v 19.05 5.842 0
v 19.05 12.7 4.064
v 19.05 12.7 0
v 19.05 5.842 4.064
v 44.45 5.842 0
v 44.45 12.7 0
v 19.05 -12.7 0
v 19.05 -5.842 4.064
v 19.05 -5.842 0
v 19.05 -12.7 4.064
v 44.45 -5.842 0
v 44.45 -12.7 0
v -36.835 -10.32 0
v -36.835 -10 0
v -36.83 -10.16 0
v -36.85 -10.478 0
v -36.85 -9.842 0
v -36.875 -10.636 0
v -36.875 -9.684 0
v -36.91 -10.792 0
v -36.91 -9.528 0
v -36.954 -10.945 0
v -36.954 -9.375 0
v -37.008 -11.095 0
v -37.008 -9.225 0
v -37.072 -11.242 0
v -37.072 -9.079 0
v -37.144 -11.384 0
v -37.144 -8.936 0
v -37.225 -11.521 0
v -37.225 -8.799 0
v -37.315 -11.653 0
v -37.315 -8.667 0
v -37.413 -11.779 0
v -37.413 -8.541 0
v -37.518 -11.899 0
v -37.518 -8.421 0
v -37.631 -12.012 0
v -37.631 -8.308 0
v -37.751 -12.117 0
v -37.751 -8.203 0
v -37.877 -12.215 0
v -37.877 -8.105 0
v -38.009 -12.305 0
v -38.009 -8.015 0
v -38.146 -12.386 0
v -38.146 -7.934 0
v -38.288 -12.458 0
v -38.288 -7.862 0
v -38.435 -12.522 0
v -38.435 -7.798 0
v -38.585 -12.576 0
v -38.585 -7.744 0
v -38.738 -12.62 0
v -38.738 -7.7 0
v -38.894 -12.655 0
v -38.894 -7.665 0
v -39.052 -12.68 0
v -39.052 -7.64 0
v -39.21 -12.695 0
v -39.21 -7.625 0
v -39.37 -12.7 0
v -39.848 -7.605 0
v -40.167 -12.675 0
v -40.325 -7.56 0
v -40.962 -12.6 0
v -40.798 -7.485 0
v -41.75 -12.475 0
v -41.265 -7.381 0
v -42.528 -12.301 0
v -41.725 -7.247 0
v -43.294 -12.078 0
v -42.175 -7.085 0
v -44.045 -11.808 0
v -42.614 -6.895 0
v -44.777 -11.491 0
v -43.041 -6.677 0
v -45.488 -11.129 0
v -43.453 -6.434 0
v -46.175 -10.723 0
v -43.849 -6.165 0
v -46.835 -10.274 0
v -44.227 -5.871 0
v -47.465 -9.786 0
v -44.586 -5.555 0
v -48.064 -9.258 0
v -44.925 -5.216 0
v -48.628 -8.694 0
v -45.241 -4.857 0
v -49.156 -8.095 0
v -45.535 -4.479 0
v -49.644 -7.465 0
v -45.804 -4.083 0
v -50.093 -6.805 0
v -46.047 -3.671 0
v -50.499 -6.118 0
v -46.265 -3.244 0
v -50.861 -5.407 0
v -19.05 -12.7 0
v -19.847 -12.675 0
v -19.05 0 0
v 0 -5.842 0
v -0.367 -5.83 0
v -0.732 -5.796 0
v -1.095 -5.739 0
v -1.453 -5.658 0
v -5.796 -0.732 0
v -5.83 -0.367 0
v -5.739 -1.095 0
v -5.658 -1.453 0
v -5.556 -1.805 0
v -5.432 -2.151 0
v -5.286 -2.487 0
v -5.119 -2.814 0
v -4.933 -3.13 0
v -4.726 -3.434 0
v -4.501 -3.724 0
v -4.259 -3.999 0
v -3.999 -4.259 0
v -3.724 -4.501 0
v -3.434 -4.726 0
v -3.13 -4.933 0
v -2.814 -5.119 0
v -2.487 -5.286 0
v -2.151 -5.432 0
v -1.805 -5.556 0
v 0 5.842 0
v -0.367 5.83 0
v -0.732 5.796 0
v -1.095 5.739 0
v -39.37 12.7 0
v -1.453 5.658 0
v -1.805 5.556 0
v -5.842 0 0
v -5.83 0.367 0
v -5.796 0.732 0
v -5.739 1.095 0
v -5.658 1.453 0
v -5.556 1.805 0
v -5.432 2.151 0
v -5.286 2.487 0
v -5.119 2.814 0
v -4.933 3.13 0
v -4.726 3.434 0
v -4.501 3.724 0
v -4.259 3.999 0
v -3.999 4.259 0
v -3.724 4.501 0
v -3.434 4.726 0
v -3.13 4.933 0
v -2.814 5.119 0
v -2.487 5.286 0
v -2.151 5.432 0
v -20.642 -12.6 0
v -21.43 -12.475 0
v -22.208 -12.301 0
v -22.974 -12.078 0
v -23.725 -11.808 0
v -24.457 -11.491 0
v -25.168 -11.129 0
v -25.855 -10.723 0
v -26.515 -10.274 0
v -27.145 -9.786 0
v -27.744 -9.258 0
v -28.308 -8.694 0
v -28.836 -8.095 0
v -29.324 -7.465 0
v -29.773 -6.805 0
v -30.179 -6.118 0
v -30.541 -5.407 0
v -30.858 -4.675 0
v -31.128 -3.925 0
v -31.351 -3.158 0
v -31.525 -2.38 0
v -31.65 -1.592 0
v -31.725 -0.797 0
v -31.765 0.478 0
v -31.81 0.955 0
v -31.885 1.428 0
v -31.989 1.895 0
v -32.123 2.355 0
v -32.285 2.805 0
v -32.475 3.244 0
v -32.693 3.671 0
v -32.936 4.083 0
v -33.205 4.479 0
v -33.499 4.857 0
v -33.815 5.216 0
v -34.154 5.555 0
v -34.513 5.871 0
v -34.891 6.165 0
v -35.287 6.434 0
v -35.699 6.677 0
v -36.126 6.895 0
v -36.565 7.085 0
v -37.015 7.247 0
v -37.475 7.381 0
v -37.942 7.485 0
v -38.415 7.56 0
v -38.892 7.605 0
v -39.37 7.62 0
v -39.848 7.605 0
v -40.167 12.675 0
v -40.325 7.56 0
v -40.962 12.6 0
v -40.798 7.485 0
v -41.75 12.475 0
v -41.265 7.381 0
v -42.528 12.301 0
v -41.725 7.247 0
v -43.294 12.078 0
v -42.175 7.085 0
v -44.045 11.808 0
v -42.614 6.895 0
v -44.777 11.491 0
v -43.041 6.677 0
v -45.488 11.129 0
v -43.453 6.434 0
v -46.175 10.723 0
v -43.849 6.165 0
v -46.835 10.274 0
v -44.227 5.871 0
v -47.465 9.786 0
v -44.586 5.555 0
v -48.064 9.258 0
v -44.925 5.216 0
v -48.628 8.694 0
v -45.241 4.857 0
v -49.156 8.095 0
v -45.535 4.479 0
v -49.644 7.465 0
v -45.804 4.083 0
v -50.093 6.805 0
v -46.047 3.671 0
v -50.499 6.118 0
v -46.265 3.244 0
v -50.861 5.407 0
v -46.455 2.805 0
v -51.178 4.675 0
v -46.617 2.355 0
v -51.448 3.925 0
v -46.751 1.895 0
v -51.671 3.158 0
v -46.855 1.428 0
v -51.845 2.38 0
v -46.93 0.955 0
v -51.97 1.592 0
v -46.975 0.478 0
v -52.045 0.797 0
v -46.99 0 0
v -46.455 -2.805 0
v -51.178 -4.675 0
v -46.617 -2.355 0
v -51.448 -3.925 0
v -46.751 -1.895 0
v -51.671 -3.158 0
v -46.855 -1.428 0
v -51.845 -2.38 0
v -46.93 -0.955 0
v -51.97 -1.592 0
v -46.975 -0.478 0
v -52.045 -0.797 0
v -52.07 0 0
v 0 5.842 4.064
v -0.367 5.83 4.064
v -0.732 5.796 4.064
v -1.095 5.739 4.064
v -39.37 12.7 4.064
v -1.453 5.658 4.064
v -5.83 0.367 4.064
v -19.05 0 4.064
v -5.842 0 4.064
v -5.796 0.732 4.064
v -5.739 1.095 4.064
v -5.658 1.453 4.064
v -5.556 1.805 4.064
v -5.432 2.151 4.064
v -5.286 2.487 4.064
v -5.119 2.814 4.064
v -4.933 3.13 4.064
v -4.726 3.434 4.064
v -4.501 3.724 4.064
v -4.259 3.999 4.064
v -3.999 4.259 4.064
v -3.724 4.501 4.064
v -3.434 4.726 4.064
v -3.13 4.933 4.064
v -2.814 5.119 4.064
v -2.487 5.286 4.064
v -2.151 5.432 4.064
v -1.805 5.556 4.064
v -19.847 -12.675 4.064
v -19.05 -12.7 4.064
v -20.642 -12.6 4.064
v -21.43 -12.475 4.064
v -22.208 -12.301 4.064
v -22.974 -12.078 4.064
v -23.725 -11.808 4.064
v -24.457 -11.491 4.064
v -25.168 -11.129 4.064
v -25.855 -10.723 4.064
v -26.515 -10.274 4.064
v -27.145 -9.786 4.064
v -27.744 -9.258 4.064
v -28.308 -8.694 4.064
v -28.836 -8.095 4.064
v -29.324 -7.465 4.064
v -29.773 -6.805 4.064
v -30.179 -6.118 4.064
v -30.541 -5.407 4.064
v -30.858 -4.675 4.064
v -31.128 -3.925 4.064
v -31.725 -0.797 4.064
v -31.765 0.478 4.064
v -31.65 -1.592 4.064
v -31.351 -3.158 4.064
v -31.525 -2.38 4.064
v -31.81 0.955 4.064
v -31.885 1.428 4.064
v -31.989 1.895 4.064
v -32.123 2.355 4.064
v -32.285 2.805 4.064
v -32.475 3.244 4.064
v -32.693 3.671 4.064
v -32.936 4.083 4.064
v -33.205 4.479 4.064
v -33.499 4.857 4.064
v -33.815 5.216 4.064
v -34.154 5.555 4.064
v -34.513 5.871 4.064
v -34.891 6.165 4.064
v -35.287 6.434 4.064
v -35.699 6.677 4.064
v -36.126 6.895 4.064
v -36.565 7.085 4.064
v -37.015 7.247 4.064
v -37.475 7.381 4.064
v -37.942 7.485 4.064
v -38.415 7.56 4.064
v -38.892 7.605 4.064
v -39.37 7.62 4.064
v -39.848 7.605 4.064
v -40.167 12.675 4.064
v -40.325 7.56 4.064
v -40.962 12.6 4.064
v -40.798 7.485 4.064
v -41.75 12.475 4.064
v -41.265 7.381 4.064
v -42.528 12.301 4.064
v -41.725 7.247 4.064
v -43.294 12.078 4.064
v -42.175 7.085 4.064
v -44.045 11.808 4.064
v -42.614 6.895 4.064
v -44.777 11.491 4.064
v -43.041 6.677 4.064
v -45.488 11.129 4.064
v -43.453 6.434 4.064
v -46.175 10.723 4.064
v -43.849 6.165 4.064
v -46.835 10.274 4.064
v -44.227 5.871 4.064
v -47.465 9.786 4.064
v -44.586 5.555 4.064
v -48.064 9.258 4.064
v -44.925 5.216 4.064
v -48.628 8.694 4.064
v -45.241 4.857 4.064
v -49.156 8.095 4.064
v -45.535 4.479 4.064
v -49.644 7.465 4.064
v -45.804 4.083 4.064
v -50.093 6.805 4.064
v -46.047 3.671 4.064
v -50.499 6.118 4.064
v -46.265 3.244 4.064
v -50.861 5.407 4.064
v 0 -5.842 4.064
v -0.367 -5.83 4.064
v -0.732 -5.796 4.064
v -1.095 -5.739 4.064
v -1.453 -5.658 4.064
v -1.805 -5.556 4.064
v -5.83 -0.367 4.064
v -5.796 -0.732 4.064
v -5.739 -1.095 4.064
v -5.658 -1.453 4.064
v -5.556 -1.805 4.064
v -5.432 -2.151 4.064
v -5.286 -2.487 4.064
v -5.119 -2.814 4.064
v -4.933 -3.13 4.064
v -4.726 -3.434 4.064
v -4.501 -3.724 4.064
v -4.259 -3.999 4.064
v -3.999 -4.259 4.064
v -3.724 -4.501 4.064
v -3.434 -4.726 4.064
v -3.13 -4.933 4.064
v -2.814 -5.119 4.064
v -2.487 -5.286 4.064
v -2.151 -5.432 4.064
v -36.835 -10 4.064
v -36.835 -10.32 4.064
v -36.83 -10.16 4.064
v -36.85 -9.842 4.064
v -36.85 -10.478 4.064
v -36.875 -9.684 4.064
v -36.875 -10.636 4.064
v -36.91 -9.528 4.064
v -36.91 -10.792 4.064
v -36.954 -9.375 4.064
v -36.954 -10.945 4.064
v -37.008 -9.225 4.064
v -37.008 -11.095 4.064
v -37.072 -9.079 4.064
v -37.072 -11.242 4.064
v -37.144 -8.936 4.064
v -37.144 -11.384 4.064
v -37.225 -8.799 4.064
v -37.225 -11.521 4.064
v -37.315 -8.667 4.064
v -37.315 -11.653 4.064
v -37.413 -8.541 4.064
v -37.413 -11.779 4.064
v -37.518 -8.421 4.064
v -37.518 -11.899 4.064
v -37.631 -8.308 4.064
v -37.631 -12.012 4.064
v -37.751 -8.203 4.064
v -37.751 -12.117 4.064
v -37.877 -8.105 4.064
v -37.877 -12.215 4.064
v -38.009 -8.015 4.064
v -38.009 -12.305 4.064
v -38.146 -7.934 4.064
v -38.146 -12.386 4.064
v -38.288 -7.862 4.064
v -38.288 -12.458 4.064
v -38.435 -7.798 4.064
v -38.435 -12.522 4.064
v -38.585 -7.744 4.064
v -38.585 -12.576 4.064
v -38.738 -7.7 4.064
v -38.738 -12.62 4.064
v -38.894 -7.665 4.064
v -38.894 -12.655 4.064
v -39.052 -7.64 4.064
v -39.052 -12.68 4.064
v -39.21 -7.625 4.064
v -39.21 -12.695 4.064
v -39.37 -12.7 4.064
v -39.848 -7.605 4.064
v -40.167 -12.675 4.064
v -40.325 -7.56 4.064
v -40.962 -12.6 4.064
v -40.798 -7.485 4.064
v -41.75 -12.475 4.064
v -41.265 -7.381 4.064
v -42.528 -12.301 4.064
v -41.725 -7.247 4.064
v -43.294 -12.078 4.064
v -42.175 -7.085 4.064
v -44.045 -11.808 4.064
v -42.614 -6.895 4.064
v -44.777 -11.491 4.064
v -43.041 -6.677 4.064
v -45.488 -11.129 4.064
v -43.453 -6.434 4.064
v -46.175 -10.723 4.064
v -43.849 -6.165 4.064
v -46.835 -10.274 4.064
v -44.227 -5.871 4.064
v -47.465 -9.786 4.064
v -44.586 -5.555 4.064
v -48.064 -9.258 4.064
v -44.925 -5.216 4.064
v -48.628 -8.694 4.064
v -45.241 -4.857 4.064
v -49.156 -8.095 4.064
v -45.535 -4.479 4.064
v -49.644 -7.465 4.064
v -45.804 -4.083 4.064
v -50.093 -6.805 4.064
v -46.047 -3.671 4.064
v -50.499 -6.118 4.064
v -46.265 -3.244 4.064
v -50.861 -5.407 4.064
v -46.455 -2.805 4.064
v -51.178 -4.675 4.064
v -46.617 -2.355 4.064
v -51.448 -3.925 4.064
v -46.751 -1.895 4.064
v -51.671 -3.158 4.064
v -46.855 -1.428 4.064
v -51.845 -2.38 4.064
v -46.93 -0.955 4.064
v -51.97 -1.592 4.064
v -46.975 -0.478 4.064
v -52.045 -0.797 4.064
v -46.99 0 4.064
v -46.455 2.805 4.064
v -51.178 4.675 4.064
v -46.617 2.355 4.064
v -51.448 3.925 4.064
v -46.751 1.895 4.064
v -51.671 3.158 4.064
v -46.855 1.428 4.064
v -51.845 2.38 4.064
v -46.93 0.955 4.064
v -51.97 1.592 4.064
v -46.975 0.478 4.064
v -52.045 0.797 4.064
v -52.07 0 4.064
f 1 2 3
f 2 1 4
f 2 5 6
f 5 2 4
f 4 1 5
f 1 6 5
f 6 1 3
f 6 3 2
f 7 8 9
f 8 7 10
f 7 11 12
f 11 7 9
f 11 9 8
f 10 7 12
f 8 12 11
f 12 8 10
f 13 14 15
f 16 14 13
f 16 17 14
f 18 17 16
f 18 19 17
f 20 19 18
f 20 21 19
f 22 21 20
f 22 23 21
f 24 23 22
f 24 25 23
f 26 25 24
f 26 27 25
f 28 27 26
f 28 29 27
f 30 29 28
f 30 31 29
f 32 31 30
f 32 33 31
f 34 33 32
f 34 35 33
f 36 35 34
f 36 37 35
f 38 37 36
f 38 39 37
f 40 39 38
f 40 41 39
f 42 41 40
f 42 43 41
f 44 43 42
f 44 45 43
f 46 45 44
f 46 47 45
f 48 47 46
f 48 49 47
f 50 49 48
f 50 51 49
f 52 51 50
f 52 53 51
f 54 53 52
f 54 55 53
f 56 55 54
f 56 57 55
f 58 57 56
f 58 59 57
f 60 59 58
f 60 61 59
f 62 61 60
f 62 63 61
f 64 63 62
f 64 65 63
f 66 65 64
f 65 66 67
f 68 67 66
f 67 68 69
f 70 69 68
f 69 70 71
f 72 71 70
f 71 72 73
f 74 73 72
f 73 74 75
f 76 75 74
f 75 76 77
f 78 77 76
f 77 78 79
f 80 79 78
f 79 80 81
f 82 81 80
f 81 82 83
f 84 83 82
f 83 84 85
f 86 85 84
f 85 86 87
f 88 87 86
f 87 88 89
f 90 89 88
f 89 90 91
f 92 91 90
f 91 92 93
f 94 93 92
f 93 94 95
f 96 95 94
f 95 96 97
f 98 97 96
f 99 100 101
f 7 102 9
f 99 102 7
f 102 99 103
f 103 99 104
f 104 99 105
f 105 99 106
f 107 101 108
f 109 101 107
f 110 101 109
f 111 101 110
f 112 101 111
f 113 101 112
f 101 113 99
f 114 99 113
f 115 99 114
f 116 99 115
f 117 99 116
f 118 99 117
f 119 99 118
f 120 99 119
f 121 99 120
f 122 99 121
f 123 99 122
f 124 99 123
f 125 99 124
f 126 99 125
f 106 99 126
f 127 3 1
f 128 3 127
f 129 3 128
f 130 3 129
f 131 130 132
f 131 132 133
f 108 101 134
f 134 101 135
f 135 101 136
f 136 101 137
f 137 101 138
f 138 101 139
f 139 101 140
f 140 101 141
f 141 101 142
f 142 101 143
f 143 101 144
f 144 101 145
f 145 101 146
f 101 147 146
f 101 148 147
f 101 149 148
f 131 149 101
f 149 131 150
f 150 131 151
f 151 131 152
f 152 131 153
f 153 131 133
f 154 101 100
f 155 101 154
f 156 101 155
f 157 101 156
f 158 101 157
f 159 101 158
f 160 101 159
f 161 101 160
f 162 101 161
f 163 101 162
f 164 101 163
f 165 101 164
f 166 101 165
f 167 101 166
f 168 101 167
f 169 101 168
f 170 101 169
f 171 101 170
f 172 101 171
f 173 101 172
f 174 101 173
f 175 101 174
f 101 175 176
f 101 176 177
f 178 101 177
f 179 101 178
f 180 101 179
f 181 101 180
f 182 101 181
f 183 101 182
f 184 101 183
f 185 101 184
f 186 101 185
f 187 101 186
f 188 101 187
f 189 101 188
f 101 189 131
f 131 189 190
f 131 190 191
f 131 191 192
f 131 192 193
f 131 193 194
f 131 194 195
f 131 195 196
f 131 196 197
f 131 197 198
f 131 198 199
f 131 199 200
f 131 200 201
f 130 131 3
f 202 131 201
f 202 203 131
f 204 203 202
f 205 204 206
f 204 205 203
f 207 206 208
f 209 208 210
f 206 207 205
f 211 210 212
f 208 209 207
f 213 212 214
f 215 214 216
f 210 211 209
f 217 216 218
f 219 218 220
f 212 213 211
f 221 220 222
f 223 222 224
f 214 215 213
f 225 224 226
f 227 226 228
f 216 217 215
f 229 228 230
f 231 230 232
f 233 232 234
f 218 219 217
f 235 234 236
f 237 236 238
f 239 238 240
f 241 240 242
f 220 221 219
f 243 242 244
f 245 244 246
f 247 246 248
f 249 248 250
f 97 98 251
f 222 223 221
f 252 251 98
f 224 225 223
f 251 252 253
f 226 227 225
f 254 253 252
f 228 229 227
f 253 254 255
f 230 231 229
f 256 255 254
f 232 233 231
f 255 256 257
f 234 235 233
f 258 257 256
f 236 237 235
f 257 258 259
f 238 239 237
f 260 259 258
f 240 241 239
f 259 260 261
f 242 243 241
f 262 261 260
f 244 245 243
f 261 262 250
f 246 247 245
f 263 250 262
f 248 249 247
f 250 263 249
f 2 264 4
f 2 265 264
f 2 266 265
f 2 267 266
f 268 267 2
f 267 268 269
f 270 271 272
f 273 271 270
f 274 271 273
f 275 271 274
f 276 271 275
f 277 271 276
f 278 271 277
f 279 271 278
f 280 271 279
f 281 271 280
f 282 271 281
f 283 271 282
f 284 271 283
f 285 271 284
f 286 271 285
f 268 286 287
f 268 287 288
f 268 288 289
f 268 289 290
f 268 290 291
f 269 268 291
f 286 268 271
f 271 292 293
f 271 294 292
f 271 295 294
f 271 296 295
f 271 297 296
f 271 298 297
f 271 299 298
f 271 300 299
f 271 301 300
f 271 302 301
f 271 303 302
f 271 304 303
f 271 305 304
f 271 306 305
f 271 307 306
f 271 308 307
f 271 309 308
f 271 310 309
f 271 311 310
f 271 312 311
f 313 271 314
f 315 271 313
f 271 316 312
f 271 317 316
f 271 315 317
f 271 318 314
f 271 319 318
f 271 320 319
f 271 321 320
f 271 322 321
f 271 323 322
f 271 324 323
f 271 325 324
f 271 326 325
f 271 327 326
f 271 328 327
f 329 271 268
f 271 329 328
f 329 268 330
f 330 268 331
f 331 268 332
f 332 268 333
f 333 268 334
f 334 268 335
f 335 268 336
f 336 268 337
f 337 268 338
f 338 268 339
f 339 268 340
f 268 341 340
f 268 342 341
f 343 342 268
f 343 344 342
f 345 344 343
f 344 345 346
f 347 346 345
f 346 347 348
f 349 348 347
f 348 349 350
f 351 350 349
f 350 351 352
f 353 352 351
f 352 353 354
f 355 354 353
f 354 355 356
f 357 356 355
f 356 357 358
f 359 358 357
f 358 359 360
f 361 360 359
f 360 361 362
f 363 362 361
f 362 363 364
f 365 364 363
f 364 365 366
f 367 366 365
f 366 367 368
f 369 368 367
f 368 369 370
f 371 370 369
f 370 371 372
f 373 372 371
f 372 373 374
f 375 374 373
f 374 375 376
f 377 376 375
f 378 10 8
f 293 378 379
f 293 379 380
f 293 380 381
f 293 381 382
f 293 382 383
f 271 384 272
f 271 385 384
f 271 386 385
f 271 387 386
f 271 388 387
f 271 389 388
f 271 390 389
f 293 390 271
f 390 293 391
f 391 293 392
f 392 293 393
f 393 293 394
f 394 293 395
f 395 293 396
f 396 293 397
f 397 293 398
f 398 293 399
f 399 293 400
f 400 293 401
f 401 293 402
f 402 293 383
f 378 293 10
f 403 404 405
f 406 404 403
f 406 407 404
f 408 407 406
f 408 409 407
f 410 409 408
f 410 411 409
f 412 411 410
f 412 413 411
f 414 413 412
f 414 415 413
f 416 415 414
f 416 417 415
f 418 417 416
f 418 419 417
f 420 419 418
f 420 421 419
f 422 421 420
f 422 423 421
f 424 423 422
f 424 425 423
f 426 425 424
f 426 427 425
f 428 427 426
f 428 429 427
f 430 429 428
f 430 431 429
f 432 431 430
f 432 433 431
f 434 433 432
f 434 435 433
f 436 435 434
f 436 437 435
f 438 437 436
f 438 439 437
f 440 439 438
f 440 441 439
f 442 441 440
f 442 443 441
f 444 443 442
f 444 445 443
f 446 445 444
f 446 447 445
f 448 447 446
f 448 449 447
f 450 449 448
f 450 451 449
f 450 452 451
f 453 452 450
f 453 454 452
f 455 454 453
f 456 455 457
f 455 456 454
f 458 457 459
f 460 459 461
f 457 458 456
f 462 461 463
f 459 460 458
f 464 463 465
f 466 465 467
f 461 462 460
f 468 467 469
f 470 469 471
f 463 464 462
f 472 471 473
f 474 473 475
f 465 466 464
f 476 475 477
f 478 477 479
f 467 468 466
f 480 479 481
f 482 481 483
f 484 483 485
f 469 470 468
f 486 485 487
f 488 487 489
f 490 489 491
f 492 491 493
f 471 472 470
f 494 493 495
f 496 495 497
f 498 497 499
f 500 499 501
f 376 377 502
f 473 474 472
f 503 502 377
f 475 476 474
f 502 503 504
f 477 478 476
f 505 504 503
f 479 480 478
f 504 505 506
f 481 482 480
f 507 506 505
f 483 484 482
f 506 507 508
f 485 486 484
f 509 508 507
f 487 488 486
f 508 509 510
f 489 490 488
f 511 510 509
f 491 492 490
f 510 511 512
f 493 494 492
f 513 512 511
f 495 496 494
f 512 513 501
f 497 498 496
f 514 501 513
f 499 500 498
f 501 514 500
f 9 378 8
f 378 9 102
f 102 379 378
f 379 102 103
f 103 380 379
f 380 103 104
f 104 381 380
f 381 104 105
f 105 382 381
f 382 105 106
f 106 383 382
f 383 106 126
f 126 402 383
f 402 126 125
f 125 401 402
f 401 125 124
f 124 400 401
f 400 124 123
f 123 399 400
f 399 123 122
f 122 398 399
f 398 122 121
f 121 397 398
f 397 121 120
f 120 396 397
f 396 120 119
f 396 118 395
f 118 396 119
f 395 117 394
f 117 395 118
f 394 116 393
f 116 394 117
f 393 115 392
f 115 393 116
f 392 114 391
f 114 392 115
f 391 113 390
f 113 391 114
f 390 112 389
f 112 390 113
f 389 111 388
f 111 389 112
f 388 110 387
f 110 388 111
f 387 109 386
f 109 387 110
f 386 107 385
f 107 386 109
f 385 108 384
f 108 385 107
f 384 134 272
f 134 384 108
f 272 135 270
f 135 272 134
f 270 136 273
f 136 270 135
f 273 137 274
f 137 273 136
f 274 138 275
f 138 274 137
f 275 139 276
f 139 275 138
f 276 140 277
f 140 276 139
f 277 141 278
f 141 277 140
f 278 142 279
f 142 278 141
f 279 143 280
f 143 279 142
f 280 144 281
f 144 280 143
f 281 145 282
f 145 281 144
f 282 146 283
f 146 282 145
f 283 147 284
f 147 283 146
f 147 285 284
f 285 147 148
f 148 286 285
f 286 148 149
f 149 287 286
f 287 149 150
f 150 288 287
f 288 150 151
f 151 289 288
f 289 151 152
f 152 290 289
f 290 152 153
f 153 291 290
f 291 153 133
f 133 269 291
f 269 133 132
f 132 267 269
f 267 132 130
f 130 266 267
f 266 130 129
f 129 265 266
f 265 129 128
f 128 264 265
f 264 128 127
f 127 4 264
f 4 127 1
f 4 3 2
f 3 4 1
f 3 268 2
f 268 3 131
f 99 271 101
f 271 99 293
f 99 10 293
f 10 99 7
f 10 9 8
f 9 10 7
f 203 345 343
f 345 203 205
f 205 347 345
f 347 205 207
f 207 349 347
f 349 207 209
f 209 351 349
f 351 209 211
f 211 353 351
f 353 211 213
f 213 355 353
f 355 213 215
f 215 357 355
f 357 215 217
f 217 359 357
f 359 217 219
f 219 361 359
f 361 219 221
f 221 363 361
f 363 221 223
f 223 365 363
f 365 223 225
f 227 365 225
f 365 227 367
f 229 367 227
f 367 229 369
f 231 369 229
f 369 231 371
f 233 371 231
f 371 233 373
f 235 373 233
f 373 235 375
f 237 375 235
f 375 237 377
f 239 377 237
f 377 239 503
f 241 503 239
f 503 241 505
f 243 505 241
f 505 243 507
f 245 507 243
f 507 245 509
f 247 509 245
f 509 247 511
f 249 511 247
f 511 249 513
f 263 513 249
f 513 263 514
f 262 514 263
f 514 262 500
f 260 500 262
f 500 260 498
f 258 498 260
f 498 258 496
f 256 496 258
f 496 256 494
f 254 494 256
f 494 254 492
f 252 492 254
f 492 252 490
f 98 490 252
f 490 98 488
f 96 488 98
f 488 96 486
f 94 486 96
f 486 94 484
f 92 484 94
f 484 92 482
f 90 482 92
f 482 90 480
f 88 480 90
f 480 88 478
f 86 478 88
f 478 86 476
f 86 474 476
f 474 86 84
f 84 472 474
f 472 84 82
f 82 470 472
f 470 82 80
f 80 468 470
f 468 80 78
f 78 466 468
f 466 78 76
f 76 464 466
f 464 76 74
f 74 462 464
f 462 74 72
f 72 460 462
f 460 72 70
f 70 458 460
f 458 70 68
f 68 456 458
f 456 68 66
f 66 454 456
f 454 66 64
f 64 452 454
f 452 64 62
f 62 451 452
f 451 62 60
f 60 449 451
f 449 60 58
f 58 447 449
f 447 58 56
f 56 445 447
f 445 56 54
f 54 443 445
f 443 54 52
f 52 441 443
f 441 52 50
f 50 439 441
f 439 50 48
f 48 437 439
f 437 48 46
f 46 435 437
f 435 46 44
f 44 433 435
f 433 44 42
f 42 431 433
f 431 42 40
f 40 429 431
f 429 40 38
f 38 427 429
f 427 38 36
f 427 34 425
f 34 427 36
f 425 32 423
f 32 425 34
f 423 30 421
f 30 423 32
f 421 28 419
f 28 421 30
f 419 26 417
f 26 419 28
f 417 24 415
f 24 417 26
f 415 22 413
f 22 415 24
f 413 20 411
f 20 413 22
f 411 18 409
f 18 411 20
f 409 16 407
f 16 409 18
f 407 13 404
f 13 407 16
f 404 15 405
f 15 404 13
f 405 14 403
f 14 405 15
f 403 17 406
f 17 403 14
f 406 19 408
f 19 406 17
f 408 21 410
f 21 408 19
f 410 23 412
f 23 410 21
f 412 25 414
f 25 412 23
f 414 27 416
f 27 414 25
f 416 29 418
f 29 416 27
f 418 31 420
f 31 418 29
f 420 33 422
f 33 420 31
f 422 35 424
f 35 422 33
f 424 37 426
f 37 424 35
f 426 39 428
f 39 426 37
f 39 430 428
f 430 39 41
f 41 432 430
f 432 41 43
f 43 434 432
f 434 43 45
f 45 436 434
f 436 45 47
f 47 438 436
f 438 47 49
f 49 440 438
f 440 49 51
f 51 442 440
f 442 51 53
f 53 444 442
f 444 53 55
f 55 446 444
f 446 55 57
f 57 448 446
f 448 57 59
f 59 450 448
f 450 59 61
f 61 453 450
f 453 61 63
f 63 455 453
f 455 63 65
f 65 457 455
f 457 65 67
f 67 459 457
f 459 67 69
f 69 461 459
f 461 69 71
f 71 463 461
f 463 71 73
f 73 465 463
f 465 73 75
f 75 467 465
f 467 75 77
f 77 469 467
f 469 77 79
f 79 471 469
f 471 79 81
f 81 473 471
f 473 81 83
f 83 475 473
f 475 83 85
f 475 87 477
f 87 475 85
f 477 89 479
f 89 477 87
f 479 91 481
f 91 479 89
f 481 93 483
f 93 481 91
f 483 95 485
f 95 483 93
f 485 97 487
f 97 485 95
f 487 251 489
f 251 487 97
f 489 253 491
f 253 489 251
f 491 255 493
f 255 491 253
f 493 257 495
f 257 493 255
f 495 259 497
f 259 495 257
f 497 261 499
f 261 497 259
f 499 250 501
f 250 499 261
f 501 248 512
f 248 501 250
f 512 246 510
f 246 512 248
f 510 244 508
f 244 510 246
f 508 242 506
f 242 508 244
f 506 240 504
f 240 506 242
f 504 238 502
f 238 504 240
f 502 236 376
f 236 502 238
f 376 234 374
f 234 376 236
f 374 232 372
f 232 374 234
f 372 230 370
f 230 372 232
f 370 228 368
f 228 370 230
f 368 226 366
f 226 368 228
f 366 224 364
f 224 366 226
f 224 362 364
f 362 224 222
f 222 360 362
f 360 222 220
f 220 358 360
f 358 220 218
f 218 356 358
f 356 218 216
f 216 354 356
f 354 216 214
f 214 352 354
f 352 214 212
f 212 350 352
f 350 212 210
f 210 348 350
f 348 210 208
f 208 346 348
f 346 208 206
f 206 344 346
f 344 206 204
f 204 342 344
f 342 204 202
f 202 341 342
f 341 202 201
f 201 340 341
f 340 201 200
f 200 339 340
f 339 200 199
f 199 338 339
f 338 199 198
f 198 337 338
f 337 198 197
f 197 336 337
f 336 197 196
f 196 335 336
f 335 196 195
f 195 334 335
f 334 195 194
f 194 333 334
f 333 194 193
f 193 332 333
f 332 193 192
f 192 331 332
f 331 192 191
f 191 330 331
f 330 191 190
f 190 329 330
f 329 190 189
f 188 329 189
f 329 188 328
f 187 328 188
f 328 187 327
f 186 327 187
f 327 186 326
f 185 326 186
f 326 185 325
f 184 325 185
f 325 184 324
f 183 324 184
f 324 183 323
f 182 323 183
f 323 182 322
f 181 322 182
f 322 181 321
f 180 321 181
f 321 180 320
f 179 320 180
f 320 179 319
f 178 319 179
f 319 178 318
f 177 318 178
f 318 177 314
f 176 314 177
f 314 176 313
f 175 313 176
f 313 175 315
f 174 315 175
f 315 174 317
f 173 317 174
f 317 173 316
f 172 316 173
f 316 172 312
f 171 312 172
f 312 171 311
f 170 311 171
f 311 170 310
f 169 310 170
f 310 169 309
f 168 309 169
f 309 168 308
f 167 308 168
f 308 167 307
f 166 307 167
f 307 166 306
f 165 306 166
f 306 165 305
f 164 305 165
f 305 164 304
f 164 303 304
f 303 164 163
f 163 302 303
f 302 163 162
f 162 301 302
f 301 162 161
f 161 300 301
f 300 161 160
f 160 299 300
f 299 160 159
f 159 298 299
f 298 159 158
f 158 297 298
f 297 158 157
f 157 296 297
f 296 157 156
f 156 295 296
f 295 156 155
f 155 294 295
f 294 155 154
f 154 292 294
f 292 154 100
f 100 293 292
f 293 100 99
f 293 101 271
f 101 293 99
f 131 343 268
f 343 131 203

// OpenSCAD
/*
 Tool to open Beths mecine bottle
*/
include <MCAD/units.scad>
use <MCAD/libtriangles.scad>

neck_diameter = 0.46*inch;
height = (0.11 + .05)*inch;
base = 1*inch;

module lever(neck, w, h){
    box_length = 1.5*inch;
    union(){
        translate([box_length/2,0,0]){
            _wedge(neck, w, h);
        }
        _box(box_length, w, h, neck);
        translate([-1*box_length/2,0,0]){
            _hook(w, h);
        }
    }
}

module _wedge(neck, w, h){
    _real_wedge(neck,w,h);
    mirror(Y)
      _real_wedge(neck,w,h);
}

module _real_wedge(n,w,h){
    ww = (w-n)/2;
    translate([0, n/2, 0])
        rightprism(w,ww,h);
}

module _box(l, w, h, n){
    linear_extrude(h){
        difference(){
            square(size=[l,w], center=true);
            union(){
                circle(n/2);
                translate([l/4,0,0])
                    square(size=[l/2,n], center=true);
            }
        }
    }
}

module _hook(w, h){
    t=h*1.25;
    linear_extrude(h){
        union(){
            // curved base
            intersection(){
                circle(w/2, center=true);
                translate([-1*w/2,0,0])
                    square(size=[w,w], center=true);
            }
            // hook top
            translate([-1*(w-t),0,0]){
                // vertical filler below hook
                difference(){
                    square(size=[w,w/2], center=false);
                    circle((w/2)-t, center=true);
                }
                // top of hook
                difference(){
                    intersection(){
                        circle(w/2, center=true);
                        translate([-1*w/2,0,0])
                            square(size=[w,w], center=true);
                    }
                    circle((w/2)-t, center=true);
                }
                // curve at end of hook
                translate([0,-1*((w/2)-(t/2)),0])
                    circle(t/2, center=true);
            }
        }
    }
}

lever(neck_diameter, base, height,
      $fn=100);
